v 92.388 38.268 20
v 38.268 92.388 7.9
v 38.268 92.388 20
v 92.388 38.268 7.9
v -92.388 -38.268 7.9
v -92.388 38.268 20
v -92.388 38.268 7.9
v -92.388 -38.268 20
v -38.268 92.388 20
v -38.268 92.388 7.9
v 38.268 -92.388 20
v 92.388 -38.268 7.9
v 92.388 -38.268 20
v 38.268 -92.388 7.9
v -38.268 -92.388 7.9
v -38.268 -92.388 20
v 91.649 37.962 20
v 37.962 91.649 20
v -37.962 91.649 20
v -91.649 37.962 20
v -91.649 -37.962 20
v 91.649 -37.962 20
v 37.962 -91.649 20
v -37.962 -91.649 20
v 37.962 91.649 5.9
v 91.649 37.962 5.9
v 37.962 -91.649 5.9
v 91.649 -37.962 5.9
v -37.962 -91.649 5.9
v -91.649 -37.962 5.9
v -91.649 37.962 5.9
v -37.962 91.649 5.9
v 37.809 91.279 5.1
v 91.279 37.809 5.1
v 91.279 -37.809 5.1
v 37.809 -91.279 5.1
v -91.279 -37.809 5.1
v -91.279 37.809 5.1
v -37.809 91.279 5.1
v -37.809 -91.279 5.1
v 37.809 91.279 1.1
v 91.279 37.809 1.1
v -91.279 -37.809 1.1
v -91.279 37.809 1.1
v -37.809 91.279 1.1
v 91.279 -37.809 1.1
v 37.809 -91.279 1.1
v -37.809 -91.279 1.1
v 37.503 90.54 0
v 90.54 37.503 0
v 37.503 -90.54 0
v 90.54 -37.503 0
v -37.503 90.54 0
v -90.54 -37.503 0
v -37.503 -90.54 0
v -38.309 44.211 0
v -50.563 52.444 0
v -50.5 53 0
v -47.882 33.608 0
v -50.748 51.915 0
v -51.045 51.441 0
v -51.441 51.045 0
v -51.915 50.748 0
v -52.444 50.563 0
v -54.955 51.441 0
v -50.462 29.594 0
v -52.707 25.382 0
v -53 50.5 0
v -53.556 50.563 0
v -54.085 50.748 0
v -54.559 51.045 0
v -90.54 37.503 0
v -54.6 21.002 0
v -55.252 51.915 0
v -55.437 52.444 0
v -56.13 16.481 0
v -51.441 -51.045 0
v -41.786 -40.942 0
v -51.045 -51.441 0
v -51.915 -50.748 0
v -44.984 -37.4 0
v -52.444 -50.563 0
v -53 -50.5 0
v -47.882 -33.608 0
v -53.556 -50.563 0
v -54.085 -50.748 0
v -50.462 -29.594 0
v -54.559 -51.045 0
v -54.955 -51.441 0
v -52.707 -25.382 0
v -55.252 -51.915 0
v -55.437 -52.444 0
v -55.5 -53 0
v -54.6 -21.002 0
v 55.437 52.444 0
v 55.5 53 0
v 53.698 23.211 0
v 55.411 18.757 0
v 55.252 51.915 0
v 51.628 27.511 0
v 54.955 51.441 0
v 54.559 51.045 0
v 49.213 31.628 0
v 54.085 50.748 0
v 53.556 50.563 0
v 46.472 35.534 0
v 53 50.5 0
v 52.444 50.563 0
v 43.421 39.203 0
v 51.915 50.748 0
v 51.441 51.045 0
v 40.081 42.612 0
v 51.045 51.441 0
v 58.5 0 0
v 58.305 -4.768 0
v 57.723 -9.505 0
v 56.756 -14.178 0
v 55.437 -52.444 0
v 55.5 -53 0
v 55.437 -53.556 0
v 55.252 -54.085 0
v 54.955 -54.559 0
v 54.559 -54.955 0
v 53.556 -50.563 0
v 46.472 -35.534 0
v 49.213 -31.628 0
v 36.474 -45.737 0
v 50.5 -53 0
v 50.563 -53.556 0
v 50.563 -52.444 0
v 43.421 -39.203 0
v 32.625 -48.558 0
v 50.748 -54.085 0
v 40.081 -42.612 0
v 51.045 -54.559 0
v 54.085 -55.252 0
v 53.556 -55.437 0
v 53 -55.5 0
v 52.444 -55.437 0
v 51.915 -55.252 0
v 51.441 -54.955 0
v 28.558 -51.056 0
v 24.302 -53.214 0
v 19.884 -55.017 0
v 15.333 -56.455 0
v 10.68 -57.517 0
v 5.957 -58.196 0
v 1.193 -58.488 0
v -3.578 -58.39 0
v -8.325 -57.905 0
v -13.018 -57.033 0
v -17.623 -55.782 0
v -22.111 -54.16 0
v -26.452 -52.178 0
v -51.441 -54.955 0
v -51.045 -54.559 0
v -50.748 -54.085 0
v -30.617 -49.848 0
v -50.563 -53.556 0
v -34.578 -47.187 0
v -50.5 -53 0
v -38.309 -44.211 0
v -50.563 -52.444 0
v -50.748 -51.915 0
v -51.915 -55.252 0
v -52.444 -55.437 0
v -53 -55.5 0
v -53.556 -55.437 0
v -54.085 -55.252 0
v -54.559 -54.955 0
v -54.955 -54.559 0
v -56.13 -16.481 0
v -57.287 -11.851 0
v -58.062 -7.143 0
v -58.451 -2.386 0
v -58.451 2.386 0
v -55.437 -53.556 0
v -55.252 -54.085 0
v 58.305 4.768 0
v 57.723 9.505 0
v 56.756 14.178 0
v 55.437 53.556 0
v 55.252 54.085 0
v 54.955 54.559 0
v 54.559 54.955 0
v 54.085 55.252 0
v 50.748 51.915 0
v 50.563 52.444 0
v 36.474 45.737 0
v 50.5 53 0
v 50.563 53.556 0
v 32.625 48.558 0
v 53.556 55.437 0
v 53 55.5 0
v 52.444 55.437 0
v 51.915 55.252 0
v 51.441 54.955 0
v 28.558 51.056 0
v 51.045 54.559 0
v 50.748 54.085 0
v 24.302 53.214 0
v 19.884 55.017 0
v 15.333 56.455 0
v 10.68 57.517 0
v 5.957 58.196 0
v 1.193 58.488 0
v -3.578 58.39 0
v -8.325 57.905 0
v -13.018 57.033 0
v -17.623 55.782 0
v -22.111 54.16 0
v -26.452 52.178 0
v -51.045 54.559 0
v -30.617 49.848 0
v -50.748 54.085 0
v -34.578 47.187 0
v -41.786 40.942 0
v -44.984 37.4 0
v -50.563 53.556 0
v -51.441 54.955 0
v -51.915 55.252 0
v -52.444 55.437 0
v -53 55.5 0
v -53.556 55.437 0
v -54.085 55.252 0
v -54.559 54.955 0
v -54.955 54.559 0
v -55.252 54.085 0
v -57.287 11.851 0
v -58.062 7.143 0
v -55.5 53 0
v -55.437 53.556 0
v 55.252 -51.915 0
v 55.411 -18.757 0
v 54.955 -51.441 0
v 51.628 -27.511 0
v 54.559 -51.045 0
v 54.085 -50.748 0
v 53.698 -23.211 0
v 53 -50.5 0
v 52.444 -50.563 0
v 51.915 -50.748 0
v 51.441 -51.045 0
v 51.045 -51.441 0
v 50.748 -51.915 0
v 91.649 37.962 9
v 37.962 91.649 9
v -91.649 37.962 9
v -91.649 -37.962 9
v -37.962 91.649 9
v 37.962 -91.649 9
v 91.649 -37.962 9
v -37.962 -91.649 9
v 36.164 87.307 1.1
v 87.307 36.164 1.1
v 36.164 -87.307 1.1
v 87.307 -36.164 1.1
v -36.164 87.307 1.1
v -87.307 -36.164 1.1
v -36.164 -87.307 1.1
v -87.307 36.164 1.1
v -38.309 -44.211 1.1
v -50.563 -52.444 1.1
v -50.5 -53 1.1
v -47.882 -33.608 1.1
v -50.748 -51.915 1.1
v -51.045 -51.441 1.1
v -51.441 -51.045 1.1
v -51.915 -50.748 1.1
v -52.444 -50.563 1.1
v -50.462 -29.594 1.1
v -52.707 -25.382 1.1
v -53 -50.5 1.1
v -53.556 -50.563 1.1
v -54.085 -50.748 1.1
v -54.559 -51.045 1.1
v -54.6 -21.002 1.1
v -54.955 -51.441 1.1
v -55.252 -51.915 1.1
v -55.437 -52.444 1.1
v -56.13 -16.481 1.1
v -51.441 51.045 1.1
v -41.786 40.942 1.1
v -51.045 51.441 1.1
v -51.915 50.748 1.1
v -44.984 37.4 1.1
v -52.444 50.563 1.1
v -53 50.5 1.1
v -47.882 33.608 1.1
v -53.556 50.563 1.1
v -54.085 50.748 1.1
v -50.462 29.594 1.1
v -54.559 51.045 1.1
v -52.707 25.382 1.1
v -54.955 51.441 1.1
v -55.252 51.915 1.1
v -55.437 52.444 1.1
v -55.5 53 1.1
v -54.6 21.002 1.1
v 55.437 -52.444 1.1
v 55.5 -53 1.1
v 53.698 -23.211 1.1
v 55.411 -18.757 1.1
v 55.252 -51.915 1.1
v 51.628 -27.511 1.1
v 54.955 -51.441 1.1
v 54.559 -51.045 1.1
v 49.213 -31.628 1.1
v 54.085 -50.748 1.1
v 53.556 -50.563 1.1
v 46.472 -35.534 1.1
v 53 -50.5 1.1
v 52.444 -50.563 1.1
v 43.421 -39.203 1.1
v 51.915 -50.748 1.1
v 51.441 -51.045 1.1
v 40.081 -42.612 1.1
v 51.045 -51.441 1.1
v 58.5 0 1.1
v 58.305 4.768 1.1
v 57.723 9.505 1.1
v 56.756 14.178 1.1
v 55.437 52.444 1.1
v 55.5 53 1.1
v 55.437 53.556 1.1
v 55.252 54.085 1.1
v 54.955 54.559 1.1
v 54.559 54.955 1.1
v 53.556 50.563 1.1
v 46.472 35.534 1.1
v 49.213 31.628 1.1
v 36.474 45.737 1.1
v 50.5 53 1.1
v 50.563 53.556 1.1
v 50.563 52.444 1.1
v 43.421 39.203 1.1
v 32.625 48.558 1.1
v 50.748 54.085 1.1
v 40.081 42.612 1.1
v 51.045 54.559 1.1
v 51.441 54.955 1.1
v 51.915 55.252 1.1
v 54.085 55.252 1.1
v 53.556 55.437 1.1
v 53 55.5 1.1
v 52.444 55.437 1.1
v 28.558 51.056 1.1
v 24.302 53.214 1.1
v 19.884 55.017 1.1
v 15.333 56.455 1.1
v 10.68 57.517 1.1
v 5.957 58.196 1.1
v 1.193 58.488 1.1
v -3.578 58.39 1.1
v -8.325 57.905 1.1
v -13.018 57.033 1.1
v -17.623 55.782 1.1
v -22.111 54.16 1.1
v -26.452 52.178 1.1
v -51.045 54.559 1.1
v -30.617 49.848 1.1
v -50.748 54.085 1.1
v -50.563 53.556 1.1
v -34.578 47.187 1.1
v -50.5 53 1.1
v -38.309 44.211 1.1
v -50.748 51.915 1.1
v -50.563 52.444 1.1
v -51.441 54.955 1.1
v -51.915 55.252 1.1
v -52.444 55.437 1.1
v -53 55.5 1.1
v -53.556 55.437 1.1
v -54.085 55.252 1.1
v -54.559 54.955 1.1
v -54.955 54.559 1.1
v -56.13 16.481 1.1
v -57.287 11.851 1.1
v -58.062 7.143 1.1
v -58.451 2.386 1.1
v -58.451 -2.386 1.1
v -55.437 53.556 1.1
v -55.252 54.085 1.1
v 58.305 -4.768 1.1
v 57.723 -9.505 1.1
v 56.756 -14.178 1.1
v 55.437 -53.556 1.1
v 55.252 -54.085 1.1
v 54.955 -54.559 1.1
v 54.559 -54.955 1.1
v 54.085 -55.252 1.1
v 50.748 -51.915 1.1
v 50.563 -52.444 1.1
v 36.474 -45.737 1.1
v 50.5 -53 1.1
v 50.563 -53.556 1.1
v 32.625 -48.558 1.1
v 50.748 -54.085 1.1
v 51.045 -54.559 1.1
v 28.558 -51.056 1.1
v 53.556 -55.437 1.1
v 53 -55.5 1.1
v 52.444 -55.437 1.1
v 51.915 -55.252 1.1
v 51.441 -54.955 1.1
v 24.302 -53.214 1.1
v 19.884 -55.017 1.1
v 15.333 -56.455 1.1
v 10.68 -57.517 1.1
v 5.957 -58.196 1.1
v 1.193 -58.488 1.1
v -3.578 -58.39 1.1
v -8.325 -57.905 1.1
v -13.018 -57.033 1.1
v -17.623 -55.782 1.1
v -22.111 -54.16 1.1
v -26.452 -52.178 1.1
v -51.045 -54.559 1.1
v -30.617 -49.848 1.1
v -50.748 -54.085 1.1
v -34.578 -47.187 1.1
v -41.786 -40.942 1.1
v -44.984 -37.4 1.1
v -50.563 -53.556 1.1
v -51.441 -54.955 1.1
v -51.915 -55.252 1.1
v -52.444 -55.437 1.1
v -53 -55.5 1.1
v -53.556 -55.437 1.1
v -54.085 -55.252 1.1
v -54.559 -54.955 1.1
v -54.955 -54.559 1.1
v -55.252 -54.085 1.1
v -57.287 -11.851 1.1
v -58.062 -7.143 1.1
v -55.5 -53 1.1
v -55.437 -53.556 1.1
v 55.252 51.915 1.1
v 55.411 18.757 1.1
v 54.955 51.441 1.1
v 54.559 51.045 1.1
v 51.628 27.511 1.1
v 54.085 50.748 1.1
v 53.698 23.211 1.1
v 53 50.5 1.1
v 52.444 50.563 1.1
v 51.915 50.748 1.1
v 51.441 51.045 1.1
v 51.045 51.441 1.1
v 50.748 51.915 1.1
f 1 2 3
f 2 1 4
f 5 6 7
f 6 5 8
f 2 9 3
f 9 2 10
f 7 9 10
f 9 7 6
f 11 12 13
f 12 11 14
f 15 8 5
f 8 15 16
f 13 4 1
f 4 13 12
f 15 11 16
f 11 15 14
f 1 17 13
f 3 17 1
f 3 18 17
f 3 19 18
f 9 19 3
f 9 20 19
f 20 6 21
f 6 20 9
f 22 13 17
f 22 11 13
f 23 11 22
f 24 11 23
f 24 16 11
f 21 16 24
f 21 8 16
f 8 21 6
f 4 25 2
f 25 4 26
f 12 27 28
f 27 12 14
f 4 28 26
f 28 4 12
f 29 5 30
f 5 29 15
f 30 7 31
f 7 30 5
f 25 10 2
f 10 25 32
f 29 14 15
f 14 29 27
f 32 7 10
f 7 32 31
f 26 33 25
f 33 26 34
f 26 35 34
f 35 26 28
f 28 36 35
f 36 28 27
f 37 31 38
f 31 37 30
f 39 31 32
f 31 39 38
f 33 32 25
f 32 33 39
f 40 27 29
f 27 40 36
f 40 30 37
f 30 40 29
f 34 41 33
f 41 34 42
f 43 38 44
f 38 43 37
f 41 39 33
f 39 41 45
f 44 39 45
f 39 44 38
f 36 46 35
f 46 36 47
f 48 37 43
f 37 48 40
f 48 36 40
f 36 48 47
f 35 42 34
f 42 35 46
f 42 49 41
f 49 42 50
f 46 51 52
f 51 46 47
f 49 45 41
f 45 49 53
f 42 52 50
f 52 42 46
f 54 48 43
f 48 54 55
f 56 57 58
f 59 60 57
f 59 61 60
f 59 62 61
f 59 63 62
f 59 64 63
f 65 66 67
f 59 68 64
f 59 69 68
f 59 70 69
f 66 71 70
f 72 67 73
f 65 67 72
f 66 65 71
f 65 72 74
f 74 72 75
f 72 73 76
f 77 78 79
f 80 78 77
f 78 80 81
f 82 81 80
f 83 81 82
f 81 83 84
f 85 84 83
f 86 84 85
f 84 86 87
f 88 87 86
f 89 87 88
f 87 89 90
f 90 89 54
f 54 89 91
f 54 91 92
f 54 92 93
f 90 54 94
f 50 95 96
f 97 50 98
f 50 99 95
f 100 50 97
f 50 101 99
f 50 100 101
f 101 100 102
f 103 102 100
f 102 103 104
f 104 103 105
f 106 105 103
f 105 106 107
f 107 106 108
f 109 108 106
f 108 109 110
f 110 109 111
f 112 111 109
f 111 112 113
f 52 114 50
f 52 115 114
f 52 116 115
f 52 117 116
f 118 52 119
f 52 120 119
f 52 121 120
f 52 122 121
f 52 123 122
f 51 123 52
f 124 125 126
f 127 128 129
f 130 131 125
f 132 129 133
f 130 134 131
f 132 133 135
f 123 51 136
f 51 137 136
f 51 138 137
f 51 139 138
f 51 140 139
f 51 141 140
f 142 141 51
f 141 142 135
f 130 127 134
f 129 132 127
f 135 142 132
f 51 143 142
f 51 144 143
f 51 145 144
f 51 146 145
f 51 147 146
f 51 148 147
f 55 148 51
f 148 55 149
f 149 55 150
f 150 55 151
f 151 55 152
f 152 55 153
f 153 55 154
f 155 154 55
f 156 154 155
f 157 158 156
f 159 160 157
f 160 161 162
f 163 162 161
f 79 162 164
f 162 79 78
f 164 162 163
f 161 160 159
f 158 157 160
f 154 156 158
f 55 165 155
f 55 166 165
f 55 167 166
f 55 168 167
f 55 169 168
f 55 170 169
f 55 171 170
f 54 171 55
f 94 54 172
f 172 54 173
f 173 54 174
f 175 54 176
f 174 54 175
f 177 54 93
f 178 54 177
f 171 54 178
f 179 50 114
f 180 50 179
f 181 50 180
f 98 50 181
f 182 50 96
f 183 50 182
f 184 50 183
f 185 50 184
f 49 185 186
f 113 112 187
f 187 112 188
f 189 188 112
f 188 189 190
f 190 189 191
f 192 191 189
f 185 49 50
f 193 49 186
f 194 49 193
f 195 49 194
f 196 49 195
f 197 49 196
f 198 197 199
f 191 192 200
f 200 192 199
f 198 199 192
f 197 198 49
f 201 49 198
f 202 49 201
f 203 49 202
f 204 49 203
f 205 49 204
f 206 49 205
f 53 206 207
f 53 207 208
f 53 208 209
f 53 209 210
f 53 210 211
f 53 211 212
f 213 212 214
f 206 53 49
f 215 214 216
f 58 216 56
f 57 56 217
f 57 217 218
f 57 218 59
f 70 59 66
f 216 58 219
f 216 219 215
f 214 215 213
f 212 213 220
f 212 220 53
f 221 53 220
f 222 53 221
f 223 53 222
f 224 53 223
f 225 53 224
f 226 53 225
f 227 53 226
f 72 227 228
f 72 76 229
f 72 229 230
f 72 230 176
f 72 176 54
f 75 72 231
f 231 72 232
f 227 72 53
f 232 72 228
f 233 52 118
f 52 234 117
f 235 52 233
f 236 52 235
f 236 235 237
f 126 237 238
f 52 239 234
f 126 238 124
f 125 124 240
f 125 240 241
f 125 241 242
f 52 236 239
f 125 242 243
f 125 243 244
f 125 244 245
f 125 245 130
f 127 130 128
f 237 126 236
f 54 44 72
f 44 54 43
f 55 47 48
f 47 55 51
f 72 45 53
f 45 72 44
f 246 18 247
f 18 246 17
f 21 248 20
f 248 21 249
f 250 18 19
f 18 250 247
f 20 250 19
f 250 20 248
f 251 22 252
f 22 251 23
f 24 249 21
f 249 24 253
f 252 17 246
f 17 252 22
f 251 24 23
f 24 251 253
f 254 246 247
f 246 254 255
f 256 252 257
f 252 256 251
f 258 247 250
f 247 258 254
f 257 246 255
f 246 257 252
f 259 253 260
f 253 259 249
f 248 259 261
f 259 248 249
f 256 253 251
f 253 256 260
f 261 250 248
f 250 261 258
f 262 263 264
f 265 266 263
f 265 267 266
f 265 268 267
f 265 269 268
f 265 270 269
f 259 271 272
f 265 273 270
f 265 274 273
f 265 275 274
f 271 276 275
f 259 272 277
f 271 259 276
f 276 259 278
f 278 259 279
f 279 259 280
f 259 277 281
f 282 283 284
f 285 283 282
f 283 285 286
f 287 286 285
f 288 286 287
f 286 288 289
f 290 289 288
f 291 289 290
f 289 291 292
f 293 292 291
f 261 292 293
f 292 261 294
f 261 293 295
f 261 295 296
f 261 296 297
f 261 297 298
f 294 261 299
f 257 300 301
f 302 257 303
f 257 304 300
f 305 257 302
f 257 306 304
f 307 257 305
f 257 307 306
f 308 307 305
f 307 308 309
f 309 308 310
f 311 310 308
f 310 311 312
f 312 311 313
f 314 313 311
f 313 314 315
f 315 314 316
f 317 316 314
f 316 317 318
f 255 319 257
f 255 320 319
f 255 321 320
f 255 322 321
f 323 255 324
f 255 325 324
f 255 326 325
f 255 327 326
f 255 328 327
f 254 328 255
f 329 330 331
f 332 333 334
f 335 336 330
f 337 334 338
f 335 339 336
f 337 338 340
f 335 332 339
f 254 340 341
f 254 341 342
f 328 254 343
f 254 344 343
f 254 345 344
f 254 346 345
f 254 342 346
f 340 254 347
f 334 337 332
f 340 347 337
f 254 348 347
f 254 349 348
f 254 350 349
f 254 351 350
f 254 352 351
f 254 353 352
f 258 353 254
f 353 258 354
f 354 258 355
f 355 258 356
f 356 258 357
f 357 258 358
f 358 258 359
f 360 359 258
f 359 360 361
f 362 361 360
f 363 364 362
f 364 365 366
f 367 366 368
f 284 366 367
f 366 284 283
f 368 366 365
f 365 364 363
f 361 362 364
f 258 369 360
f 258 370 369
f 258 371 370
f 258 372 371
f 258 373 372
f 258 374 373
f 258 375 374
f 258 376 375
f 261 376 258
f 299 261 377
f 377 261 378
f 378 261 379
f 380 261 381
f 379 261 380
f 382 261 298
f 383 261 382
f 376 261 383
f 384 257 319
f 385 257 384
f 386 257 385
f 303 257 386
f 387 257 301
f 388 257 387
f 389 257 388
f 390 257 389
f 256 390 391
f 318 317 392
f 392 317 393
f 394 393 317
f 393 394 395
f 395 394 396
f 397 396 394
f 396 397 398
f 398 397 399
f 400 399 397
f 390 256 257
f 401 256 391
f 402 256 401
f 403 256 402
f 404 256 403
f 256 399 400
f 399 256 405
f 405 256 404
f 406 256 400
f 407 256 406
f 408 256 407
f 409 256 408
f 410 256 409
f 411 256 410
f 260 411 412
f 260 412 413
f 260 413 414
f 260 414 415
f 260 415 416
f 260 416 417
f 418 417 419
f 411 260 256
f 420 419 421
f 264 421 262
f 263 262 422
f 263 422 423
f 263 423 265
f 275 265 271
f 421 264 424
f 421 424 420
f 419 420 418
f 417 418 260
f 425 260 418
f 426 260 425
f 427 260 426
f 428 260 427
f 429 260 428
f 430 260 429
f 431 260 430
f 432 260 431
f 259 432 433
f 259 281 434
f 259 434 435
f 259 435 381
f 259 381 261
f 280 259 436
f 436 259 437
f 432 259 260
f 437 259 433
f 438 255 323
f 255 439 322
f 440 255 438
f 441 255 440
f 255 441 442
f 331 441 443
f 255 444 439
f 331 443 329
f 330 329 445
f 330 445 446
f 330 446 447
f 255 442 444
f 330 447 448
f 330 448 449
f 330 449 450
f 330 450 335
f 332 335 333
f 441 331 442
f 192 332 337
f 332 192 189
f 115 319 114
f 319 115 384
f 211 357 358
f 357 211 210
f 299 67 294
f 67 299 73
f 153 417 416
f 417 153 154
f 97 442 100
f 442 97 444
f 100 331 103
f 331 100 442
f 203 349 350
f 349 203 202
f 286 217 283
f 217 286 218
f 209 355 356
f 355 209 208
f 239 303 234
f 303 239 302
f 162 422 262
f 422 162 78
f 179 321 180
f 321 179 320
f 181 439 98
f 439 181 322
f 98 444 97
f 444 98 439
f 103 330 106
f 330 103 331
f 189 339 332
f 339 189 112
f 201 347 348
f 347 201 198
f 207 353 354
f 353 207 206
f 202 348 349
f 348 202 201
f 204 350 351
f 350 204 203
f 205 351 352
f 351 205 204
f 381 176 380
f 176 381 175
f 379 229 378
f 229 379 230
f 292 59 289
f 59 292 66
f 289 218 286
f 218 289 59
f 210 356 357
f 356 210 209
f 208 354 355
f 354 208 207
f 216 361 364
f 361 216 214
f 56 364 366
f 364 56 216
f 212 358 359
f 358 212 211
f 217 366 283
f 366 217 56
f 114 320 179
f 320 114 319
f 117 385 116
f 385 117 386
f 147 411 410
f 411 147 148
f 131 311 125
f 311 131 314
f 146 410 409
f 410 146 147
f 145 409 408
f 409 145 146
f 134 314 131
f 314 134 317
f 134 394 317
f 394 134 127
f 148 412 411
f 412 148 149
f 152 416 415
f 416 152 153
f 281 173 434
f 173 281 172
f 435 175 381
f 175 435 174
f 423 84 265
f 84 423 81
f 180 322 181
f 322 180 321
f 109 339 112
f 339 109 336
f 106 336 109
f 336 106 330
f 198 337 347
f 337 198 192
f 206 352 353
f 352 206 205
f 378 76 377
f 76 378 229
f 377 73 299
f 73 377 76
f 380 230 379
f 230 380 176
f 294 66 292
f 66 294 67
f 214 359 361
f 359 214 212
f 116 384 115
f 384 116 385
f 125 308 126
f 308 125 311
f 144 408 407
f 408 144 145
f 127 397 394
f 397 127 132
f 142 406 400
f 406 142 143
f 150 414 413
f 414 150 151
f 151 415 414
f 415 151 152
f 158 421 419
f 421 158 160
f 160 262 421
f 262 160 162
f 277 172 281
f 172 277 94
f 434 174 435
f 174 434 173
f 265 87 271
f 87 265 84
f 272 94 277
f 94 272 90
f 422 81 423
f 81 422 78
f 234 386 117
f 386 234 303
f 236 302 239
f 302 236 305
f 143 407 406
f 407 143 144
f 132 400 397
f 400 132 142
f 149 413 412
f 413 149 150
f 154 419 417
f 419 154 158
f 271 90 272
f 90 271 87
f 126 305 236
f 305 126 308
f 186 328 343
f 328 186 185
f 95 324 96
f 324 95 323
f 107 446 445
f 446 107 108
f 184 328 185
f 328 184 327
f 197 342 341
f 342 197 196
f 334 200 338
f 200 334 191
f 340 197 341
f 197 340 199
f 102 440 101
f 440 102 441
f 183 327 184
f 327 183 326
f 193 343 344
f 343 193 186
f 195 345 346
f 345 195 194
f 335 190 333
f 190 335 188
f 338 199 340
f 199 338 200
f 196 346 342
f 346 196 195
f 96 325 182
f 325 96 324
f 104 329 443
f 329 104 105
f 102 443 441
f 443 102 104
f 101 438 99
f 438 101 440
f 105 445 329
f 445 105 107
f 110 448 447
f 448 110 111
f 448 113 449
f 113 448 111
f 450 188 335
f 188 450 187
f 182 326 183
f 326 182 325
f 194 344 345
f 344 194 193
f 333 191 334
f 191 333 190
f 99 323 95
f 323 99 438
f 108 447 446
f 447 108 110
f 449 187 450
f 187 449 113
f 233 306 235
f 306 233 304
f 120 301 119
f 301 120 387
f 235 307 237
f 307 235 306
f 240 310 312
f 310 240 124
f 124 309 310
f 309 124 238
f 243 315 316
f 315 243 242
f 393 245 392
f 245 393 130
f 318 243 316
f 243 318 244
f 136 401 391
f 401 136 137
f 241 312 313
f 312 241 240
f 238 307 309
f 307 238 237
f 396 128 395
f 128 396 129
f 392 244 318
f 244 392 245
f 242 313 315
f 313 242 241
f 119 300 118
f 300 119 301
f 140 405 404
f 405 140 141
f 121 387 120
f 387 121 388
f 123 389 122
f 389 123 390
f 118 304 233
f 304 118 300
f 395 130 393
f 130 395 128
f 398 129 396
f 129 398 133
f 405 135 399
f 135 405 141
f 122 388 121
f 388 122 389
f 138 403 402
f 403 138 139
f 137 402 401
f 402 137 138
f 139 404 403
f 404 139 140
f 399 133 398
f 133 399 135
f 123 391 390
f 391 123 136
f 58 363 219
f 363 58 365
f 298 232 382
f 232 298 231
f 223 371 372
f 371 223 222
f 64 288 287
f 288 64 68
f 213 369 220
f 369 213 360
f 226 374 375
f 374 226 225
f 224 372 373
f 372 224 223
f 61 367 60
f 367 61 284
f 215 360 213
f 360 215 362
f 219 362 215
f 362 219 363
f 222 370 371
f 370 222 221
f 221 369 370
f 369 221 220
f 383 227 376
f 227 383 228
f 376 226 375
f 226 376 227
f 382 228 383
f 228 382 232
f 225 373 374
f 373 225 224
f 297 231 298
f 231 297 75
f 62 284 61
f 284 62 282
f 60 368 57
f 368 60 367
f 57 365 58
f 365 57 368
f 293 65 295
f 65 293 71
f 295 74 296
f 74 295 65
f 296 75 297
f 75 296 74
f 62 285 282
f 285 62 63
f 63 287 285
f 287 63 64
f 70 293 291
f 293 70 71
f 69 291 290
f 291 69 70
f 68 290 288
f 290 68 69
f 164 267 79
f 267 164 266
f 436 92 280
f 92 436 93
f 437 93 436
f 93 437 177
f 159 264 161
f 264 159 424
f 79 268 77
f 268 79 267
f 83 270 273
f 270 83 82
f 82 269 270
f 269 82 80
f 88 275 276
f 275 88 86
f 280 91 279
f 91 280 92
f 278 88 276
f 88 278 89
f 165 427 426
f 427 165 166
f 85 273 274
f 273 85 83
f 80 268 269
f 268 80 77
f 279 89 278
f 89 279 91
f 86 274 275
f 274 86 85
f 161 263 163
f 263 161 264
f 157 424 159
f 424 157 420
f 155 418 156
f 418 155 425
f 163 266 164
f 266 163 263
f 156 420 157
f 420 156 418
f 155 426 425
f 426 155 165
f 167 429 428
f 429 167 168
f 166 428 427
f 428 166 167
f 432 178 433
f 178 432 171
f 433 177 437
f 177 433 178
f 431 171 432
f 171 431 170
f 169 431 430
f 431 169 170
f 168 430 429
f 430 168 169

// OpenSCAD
// file: ring.scad
module stackable_body(width, h, hg, w, fn)
{
    x=7;

    difference()
    {
        width_i=width-2*w-w;
        union()
        {
            translate([0,0,hg+4+w+2])
            x_cube(width,width,h-hg-4-2-w,fn);
            translate([0,0,hg+4+w])
            x_cube(width_i+w,width,2,fn);
            translate([0,0,hg+4])
            x_cube(width_i, width_i+w,w,fn);
            translate([0,0,hg])
            x_cube(width_i, width_i,4,fn);
            x_cube(width_i-2*w, width_i,hg,fn);
        }
        translate([0,-50*0,0])
        {
            width=width-2*w;
            width_i=width_i-2*w;
            translate([0,0,hg+hg+4+w+2])
            x_cube(width,width,h-(hg+4+w+2),fn);
            translate([0,0,hg])
            x_cube(width_i-x,width,(hg+4+w+2),fn);
            x_cube(width_i-x, width_i-x,hg,fn);
        }
    }
}


module x_cube(width1, width2,h,fn)
{
    width2 = (width2 == 0) ? width1 : width2;

    rotate([0,0,45/2])
    cylinder(d1=width1,d2=width2,h=h,$fn=fn);
}

function side_to_diameter(a) = (
    let(v=a*sin(45))
    let(d=v*2)
    d);

// screew holes:
// distance = 105;
// diagonal distance = 150;
// diameter = 5;
// main file
use<ring.scad>

fn=8;
hg=0.2+0.3*3;
//hg=0.2+0.3*5;
h=20;
w=0.4*2;
width=200;

body();

module body()
{
    stackable_body(width, h, hg, w, fn);

    difference()
    {
        rotate([0,0,45/2])
        cylinder(d=200-10,h=hg,$fn=fn);
        cylinder(d=117,h=hg,$fn=77);
        
        xs=106;
        
        translate([xs/2,xs/2,0])
        cylinder(d=5,h=hg,$fn=28);
        translate([xs/2,-xs/2,0])
        cylinder(d=5,h=hg,$fn=28);
        translate([-xs/2,xs/2,0])
        cylinder(d=5,h=hg,$fn=28);
        translate([-xs/2,-xs/2,0])
        cylinder(d=5,h=hg,$fn=28);
    }
}
